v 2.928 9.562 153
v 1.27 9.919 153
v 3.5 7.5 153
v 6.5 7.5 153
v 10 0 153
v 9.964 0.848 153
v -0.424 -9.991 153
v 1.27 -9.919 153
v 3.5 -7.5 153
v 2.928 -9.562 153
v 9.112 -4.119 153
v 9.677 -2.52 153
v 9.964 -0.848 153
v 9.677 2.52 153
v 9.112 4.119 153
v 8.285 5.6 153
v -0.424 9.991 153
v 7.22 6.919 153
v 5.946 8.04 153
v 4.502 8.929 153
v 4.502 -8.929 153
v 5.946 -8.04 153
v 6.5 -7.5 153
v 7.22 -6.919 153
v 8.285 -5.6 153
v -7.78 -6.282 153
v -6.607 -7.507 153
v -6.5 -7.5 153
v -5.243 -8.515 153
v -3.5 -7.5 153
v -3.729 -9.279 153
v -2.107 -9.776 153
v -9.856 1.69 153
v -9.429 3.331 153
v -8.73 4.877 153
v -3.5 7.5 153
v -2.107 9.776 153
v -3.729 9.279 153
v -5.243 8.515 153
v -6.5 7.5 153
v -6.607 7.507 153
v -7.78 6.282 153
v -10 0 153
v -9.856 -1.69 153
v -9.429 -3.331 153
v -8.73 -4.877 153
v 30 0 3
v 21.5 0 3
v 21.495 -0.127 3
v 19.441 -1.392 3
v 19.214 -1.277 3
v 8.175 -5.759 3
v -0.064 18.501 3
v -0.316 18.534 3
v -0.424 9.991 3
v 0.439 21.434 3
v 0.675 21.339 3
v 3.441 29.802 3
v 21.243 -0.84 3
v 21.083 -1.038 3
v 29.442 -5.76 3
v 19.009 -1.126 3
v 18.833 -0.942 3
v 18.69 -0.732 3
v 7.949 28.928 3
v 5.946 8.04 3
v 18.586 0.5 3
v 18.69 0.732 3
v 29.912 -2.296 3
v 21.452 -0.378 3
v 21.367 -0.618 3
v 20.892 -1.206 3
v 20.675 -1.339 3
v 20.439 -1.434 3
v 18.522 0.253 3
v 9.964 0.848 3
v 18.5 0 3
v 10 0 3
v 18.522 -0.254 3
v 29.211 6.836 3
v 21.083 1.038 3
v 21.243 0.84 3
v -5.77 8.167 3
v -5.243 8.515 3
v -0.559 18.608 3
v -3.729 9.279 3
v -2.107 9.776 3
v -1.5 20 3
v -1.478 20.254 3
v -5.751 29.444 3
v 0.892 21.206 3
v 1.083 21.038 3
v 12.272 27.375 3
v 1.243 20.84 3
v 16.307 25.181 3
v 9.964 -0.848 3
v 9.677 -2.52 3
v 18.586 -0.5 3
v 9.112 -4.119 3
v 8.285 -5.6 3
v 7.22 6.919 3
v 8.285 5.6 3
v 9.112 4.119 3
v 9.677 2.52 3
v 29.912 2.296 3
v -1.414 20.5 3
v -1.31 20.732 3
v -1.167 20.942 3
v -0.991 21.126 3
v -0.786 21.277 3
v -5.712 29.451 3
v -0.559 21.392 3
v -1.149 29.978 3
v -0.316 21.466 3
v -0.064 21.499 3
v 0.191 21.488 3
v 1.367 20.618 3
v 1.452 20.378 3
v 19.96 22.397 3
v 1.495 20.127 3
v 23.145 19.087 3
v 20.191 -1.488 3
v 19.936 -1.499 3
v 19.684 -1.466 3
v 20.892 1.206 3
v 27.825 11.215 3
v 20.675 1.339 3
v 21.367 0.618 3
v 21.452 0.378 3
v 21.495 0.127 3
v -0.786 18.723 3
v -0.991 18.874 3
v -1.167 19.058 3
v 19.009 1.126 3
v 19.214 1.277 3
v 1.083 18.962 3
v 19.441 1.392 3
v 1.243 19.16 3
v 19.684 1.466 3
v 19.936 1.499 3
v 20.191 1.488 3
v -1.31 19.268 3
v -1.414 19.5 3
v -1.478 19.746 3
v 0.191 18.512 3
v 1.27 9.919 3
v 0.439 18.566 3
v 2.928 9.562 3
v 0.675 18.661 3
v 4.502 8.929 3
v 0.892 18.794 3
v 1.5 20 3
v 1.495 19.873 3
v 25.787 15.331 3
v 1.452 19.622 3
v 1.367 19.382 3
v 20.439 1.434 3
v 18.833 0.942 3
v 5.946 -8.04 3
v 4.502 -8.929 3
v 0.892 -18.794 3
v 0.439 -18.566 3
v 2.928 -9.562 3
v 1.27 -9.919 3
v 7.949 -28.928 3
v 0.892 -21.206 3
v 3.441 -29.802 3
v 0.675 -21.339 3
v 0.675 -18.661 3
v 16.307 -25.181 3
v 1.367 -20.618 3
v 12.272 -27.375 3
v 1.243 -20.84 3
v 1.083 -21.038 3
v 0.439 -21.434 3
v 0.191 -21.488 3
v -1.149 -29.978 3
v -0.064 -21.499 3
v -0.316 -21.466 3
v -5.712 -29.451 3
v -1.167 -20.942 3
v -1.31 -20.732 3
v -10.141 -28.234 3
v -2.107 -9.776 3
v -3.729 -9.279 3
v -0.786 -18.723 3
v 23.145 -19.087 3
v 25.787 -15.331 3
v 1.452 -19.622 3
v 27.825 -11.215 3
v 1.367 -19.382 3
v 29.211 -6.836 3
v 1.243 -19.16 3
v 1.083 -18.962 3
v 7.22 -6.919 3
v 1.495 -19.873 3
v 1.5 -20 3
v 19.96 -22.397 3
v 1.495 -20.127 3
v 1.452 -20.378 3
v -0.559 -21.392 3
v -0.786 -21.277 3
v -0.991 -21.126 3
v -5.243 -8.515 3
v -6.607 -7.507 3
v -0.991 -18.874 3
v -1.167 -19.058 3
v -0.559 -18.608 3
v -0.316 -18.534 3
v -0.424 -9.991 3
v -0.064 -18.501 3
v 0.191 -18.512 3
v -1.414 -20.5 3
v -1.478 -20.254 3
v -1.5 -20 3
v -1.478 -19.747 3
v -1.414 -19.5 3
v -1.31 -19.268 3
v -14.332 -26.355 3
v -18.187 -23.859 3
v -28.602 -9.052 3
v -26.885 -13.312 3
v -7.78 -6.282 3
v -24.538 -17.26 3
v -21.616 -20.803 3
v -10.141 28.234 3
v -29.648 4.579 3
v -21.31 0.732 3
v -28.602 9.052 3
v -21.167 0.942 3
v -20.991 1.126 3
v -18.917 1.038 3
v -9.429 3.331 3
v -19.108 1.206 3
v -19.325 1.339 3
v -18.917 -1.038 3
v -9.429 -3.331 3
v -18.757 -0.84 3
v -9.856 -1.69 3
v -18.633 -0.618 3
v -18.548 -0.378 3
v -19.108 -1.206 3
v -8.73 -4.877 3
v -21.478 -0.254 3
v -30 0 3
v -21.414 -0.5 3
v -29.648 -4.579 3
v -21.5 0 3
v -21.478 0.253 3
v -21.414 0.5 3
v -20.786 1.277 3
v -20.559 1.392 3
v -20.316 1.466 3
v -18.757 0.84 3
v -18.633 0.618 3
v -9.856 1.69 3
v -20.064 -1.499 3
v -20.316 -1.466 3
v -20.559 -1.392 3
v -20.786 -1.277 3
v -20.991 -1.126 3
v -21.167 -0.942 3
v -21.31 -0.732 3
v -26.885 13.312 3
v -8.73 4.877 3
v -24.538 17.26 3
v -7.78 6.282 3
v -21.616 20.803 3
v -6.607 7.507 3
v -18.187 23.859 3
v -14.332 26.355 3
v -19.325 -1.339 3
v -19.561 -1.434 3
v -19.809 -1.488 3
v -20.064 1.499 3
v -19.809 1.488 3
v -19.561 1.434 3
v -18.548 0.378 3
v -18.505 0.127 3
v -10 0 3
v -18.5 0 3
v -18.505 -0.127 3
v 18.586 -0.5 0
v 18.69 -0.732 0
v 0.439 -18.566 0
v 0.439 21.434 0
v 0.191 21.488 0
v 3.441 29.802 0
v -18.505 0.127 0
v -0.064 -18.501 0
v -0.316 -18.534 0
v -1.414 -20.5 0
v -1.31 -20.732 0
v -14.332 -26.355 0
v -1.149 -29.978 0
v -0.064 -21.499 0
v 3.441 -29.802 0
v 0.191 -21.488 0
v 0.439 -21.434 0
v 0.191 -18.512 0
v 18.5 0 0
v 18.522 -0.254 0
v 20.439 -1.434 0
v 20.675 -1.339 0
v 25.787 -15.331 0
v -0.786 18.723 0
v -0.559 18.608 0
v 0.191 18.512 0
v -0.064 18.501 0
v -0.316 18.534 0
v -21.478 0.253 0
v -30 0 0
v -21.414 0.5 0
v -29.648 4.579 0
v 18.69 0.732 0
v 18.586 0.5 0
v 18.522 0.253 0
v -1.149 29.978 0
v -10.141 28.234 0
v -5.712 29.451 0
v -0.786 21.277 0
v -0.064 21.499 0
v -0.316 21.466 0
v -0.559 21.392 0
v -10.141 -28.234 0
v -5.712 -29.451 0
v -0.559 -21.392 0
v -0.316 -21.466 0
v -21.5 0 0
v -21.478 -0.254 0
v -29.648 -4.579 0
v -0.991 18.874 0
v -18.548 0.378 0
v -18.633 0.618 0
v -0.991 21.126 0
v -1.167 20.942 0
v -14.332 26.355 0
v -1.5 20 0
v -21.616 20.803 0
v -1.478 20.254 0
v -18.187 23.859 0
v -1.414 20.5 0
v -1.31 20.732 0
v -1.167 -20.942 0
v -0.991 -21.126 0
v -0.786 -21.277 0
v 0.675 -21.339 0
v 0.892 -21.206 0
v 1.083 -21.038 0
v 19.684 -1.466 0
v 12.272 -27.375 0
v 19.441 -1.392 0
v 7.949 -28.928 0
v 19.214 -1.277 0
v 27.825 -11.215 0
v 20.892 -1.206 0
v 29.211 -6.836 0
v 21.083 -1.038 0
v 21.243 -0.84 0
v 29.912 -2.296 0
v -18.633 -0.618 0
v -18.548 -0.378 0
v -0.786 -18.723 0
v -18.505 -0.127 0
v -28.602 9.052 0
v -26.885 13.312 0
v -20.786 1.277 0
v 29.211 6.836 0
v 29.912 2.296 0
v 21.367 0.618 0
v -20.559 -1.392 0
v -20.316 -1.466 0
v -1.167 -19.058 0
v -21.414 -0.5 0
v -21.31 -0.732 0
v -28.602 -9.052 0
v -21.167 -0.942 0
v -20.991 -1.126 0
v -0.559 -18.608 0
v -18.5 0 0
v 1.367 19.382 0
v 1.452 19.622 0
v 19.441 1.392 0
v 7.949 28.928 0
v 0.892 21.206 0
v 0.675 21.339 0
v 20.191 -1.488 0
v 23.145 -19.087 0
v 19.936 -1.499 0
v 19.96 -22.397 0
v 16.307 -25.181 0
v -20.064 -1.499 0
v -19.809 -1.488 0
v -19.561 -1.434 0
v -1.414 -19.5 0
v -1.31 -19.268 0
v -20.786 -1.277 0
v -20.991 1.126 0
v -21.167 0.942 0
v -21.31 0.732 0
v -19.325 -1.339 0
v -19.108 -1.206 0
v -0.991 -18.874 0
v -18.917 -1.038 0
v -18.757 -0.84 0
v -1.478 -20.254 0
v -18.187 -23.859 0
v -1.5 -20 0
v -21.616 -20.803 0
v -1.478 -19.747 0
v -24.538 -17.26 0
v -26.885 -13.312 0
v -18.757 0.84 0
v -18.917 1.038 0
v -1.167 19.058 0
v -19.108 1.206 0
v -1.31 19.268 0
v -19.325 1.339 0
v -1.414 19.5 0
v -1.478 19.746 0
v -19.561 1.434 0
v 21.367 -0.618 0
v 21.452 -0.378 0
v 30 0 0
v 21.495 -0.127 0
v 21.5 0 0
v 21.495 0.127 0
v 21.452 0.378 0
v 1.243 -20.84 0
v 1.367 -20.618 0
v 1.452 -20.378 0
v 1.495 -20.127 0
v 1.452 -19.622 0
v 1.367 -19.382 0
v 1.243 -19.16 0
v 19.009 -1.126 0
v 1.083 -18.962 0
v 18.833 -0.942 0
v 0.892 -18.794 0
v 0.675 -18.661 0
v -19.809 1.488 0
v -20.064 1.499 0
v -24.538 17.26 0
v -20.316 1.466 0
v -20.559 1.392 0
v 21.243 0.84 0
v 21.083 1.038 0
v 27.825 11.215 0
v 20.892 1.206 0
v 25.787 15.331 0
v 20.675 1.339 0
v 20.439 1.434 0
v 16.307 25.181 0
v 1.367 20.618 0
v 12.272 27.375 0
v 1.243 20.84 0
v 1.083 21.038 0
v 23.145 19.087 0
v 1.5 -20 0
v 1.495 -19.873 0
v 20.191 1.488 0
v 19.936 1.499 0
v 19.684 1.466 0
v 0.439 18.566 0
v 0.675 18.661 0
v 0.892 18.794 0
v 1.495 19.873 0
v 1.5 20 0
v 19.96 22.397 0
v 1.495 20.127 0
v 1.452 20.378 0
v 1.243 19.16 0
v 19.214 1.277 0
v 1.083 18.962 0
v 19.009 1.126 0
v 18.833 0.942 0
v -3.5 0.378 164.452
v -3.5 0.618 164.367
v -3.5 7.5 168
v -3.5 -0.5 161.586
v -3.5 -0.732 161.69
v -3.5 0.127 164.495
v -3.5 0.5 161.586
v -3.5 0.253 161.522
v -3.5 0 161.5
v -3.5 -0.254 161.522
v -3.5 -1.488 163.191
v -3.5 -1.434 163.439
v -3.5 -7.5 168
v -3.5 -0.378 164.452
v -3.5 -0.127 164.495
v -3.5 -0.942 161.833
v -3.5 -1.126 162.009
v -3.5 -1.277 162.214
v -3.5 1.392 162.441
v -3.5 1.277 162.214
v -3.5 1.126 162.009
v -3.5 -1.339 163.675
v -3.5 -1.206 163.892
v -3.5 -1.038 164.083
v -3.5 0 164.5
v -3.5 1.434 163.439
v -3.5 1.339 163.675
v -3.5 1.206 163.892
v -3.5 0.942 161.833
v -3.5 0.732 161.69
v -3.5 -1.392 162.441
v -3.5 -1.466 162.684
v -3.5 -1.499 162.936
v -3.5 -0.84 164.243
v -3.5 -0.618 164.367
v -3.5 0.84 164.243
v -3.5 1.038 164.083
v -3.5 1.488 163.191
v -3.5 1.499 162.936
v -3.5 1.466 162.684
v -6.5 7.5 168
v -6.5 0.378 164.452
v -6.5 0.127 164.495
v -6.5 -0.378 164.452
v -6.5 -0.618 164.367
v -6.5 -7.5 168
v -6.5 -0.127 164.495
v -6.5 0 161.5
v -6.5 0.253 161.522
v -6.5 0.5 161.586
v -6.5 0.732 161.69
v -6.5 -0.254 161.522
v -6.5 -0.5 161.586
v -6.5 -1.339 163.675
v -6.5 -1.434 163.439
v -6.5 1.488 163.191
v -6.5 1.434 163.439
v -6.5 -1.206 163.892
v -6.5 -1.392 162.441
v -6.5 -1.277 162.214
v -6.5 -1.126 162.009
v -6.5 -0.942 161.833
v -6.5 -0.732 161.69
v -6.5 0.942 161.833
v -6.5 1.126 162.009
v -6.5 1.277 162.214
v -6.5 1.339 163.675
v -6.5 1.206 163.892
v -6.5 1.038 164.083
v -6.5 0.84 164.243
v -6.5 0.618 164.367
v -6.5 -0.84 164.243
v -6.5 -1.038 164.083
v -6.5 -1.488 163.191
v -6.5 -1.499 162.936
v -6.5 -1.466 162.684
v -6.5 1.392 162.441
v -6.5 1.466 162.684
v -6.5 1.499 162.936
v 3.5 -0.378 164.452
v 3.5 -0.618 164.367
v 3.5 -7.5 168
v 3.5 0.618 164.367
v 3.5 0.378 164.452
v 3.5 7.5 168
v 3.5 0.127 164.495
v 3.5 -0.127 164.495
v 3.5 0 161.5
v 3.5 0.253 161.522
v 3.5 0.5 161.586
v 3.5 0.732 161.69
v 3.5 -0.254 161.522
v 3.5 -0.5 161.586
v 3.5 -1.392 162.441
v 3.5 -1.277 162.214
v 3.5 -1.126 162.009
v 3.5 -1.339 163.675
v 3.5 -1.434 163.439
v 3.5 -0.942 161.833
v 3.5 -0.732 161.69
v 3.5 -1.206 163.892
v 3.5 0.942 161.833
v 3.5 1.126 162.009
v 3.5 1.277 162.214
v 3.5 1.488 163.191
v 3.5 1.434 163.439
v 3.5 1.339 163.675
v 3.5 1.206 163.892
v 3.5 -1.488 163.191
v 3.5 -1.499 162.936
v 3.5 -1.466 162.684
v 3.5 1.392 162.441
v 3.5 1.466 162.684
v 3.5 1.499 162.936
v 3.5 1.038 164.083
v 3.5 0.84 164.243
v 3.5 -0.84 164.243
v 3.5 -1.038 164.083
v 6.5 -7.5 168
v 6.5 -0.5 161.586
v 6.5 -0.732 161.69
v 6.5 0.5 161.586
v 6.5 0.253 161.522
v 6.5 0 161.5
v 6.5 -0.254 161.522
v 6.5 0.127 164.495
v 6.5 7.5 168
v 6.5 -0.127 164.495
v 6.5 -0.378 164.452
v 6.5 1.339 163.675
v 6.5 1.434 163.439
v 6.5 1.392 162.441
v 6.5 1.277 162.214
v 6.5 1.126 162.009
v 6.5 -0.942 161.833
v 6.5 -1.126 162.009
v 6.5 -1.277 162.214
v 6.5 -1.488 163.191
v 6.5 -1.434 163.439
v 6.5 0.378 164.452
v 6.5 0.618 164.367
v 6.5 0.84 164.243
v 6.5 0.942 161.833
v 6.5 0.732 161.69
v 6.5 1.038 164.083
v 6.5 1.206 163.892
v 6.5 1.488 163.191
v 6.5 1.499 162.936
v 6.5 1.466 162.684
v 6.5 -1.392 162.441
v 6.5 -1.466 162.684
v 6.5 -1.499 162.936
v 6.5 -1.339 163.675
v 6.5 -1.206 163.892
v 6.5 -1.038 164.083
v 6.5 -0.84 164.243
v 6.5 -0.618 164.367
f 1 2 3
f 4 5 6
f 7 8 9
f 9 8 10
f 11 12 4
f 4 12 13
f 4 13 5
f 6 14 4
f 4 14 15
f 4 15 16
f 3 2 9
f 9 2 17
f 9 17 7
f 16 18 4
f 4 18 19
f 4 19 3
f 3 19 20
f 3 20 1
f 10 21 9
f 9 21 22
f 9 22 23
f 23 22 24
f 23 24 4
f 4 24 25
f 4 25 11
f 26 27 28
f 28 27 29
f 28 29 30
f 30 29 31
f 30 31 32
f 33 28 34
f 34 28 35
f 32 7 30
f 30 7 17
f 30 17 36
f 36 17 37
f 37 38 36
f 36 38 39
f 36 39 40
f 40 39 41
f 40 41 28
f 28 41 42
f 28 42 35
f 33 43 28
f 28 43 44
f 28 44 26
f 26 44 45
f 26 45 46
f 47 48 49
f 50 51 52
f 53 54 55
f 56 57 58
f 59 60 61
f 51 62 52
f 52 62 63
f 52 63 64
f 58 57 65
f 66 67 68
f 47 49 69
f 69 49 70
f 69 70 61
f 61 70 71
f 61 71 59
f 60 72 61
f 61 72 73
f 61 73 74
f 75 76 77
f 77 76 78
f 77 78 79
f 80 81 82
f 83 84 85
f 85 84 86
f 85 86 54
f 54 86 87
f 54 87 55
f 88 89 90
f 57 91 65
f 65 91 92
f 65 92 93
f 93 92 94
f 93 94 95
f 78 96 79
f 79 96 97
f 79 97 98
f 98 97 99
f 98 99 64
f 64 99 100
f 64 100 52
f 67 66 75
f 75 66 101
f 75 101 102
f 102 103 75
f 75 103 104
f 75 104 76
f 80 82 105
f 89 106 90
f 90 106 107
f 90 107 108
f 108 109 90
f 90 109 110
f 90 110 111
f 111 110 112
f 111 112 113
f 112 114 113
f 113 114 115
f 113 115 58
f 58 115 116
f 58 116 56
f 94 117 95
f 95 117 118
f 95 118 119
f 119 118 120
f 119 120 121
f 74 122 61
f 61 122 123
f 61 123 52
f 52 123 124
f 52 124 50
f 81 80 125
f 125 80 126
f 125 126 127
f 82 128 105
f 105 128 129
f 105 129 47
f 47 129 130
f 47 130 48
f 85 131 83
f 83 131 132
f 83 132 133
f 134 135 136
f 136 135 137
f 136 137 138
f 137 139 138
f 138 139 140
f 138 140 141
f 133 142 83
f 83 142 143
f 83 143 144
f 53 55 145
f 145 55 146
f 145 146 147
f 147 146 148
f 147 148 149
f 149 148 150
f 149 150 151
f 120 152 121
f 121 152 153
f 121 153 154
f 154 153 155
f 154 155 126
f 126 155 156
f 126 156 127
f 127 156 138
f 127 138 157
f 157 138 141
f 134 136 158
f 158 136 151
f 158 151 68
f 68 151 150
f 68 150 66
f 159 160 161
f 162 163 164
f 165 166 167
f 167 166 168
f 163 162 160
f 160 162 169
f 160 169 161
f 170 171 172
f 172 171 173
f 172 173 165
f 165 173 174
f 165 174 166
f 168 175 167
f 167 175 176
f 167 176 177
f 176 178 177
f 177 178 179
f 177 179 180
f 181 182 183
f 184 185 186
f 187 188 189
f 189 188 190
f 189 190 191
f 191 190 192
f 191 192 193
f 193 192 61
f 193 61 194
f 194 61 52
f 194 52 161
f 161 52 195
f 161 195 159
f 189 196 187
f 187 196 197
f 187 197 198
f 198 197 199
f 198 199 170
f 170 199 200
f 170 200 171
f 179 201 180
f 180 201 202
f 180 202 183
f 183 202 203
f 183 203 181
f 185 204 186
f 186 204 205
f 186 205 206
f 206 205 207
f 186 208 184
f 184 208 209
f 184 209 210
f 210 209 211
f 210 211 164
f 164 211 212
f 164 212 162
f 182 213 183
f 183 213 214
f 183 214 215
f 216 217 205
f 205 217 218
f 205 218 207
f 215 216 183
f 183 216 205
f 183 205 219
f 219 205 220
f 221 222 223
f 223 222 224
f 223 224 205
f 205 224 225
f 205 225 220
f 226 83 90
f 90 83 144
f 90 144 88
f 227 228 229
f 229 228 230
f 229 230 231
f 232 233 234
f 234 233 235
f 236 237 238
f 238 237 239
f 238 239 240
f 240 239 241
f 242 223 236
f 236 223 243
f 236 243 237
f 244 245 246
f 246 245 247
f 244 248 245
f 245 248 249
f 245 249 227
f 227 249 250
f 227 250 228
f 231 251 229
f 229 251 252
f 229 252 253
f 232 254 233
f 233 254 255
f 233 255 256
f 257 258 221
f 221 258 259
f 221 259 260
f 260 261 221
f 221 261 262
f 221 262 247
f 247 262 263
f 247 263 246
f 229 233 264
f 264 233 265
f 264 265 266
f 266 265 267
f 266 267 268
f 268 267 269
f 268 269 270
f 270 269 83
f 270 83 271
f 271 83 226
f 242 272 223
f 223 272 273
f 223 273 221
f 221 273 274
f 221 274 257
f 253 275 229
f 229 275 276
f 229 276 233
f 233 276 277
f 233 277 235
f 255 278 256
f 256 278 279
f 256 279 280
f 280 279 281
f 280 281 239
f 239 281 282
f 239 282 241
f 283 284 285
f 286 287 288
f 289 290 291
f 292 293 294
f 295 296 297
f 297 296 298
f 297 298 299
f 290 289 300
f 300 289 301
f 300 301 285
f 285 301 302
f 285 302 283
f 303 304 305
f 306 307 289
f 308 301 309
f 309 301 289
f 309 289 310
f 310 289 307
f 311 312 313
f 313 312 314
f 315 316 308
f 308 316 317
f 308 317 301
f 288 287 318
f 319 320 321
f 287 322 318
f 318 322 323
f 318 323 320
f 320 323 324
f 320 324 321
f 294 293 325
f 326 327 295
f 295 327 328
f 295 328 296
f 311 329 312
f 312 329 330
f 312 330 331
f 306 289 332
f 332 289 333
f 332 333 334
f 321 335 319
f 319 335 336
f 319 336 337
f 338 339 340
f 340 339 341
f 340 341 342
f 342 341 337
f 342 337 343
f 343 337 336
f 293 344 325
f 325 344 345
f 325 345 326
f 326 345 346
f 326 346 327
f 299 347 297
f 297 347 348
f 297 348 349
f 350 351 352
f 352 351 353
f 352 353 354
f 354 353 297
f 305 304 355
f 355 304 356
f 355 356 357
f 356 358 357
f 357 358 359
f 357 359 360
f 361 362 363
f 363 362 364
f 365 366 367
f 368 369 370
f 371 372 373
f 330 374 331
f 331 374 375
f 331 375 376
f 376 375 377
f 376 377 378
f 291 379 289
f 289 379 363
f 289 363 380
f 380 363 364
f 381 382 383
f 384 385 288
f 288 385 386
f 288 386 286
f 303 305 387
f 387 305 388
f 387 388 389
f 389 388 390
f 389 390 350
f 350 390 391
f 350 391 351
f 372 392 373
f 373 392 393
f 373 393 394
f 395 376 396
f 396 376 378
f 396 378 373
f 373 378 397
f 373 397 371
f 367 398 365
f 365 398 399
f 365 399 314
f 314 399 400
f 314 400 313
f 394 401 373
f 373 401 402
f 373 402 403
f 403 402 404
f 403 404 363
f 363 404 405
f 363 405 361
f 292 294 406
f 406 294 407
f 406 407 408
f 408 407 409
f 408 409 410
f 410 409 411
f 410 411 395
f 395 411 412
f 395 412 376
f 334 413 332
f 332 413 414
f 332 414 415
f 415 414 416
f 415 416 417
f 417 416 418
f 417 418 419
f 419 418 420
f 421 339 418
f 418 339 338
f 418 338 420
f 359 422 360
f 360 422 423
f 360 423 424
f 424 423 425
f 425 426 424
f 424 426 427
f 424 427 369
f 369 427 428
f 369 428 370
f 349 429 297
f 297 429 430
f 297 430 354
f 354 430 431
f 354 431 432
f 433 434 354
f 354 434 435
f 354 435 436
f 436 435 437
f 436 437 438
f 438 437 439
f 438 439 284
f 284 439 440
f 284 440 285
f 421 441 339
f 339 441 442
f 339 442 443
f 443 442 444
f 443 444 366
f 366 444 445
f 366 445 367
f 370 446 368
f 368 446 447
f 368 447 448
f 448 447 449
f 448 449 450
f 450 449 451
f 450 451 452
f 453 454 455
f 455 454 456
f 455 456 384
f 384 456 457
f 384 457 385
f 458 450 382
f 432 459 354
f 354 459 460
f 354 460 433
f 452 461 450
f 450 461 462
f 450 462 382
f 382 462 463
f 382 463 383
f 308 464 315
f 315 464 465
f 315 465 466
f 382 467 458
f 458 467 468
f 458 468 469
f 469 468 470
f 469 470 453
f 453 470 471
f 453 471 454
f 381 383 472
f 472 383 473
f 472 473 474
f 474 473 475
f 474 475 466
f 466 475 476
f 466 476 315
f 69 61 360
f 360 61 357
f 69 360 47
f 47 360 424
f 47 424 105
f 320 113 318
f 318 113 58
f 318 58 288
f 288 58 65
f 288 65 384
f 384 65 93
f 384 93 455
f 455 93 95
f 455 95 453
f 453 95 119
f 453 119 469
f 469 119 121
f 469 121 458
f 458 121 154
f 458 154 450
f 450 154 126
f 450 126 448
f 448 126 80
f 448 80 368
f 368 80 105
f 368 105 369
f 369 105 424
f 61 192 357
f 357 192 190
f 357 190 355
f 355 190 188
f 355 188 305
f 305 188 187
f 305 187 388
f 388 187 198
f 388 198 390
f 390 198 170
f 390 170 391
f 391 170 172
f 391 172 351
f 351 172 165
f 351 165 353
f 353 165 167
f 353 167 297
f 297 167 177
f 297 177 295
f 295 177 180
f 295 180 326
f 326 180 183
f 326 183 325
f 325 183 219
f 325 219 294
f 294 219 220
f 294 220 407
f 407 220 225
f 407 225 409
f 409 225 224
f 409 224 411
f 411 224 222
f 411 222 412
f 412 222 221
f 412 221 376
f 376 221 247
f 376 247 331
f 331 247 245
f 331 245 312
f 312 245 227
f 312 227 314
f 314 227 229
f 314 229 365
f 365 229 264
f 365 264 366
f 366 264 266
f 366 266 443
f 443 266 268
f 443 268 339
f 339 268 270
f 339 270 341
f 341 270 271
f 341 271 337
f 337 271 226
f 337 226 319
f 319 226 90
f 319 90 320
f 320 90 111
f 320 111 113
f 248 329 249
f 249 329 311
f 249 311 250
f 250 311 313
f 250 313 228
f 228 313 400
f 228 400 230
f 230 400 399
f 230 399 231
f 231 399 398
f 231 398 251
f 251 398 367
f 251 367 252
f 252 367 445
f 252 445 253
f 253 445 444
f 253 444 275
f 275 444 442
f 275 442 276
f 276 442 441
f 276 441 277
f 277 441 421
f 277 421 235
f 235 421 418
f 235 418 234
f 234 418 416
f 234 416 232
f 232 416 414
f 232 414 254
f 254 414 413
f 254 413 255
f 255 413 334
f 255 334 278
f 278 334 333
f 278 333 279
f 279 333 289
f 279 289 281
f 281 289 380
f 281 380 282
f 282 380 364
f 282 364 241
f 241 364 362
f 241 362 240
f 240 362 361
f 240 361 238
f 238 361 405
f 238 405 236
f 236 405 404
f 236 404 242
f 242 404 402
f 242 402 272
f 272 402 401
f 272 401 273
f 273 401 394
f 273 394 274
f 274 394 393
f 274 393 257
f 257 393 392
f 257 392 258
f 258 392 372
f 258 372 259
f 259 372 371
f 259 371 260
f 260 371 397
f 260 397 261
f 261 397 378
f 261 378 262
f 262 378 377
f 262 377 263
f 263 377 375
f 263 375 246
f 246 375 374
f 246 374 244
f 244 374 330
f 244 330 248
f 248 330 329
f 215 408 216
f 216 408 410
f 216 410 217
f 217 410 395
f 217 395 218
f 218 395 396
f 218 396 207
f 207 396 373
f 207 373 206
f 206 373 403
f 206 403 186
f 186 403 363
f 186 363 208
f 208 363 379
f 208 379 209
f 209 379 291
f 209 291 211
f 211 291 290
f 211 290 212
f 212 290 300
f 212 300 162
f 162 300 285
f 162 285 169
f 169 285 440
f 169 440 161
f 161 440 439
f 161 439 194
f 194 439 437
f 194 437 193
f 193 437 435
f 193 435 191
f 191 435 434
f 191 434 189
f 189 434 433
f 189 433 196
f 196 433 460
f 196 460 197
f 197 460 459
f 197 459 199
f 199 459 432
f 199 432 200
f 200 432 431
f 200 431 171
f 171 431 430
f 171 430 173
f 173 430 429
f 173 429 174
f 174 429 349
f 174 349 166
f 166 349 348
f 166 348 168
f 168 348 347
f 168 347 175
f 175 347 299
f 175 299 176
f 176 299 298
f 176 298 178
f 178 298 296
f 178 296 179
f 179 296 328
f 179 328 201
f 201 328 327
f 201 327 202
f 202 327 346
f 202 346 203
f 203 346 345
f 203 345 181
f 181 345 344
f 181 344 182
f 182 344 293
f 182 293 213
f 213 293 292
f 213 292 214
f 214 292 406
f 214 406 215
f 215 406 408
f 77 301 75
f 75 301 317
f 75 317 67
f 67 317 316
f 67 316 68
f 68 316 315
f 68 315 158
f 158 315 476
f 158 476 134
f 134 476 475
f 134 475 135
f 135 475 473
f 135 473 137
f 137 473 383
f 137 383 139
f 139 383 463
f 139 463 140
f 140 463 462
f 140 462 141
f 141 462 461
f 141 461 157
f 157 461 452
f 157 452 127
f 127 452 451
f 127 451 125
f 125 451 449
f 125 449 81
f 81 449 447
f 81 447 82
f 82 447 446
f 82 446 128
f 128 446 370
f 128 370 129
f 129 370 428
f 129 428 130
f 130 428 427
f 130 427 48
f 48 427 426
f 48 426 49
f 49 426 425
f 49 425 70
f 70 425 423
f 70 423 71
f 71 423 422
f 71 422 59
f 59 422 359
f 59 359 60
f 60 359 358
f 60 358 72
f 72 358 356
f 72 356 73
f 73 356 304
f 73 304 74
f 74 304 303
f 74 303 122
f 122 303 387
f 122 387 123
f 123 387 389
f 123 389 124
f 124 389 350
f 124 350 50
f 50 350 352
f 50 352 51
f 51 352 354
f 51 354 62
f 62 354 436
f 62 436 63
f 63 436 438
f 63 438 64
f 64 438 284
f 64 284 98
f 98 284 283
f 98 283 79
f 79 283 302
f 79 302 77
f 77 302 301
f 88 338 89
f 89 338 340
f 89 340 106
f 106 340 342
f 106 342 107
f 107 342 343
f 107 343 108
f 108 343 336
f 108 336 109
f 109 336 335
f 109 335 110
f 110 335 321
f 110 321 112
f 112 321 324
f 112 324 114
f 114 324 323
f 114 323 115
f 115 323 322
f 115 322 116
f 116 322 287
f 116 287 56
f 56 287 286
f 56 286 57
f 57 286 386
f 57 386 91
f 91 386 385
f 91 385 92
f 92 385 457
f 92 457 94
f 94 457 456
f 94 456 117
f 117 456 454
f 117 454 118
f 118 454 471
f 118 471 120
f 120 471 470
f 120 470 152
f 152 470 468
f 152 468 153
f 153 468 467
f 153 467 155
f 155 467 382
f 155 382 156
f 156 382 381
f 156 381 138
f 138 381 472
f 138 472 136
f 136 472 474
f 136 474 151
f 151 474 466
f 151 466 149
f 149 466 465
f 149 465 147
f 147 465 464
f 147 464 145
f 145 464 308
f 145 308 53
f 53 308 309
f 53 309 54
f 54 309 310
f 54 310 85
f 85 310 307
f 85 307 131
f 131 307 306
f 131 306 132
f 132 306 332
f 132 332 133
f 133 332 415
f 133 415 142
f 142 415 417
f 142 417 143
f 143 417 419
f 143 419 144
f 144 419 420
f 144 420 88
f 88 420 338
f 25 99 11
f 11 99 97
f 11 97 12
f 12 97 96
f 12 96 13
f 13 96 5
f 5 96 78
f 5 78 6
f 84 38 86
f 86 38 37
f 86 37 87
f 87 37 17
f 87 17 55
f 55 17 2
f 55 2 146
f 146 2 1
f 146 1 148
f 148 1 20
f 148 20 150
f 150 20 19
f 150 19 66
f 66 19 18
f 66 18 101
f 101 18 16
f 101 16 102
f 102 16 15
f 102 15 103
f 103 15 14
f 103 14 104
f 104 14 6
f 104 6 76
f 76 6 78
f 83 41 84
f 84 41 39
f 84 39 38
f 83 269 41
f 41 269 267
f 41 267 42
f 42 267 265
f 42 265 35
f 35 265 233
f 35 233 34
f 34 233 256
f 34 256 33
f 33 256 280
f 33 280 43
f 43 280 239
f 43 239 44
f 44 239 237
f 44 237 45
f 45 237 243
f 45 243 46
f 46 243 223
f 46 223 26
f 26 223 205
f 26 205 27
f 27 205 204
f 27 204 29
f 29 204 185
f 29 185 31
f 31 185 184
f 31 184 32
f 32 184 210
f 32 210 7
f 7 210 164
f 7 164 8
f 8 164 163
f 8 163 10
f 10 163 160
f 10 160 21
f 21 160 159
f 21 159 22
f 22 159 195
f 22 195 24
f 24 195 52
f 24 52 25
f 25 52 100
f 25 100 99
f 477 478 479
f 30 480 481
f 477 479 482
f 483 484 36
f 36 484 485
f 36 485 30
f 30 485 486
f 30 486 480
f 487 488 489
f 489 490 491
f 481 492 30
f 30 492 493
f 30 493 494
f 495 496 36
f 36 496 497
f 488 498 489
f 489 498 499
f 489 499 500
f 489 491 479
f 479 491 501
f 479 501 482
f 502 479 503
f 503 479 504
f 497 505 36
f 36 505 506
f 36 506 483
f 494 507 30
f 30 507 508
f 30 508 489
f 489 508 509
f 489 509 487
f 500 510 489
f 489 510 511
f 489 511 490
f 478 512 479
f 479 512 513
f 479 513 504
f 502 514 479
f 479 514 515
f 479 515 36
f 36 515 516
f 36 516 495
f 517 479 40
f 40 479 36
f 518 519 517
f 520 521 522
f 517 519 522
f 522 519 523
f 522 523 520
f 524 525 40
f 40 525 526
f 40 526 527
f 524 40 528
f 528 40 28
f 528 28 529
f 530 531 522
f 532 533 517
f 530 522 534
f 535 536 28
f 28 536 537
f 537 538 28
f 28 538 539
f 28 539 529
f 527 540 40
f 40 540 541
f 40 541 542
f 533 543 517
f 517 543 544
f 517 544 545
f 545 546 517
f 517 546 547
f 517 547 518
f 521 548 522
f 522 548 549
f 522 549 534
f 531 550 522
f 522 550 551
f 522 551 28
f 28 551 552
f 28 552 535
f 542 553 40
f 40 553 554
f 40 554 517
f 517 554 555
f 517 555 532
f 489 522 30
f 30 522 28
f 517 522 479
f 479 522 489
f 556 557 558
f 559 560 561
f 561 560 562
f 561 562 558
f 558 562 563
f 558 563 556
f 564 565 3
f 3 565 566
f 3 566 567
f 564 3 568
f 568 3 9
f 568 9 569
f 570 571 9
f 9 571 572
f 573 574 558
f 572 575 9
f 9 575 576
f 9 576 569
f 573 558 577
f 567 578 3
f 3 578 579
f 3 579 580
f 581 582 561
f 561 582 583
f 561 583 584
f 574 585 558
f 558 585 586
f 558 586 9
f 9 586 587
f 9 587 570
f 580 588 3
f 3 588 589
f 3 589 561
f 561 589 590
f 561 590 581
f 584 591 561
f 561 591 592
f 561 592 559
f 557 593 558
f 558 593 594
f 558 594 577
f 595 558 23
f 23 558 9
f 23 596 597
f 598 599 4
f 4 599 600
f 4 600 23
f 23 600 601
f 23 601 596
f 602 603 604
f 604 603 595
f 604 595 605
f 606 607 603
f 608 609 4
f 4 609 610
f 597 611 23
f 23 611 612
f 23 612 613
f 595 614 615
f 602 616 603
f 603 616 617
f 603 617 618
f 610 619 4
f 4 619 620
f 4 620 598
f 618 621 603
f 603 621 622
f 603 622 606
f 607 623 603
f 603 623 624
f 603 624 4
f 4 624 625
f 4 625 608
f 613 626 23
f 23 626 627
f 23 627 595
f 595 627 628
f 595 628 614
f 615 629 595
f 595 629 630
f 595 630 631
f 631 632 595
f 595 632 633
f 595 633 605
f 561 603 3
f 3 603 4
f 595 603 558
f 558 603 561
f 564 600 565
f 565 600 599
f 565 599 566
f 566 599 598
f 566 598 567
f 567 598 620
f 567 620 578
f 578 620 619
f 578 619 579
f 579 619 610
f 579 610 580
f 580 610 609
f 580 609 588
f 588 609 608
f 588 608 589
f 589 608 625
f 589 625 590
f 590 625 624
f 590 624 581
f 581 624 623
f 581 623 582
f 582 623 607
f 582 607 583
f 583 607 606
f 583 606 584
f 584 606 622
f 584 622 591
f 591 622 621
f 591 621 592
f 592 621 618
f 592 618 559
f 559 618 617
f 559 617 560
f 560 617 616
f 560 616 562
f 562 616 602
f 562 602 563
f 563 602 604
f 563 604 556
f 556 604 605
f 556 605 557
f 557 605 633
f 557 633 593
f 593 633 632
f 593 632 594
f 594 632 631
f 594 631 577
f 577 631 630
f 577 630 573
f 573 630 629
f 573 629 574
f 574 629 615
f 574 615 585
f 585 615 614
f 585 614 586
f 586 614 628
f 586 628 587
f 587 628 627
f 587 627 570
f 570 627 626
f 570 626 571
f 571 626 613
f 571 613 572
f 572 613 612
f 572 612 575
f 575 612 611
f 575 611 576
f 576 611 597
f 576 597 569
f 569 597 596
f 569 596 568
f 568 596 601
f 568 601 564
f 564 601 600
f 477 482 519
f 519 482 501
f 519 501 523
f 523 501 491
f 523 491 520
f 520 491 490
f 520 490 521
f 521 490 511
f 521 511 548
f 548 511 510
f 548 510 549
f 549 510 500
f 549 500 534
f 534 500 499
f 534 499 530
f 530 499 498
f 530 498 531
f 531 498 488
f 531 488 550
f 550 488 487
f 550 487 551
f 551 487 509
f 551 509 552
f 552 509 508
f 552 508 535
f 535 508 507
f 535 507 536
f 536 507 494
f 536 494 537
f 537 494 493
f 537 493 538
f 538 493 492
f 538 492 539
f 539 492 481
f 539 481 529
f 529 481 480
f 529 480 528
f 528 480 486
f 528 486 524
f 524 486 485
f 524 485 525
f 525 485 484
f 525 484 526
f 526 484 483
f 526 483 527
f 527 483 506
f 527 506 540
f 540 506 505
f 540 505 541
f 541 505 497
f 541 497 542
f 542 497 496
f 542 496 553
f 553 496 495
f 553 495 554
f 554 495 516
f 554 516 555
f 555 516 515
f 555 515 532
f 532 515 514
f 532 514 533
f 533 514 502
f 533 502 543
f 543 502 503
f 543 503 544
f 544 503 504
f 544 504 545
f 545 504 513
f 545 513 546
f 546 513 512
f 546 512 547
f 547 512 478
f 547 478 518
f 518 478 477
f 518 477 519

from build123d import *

# Parameters (mm, degrees)
SKETCH_1_R          = 30
SKETCH_1_R_2        = 1.5
EXTRUDE_1_DEPTH     = 3
SKETCH_3_R          = 10
EXTRUDE_3_DEPTH     = 150
SKETCH_4_W          = 3
SKETCH_4_H          = 15
EXTRUDE_4_DEPTH     = 15
SKETCH_5_R          = 1.5
CUT_EXTRUDE_1_DEPTH = 175.51719113


with BuildPart() as part:
    # Эскиз1 → Бобышка-Вытянуть1 (new body)
    with BuildSketch(Plane.XY):
        Circle(SKETCH_1_R)
        with Locations((-20, 0)):
            Circle(SKETCH_1_R_2, mode=Mode.SUBTRACT)
        with Locations((0, -20)):
            Circle(SKETCH_1_R_2, mode=Mode.SUBTRACT)
        with Locations((20, 0)):
            Circle(SKETCH_1_R_2, mode=Mode.SUBTRACT)
        with Locations((0, 20)):
            Circle(SKETCH_1_R_2, mode=Mode.SUBTRACT)
    extrude(amount=EXTRUDE_1_DEPTH)

    # Эскиз3 → Бобышка-Вытянуть3 (add)
    with BuildSketch(Plane.XY.offset(3)):
        Circle(SKETCH_3_R)
    extrude(amount=EXTRUDE_3_DEPTH)

    # Эскиз4 → Бобышка-Вытянуть4 (add)
    with BuildSketch(Plane.XY.offset(153)):
        with Locations((-5, 0)):
            Rectangle(SKETCH_4_W, SKETCH_4_H)
        with Locations((5, 0)):
            Rectangle(SKETCH_4_W, SKETCH_4_H)
    extrude(amount=EXTRUDE_4_DEPTH)

    # Эскиз5 → Вырез-Вытянуть1 (cut, through all)
    with BuildSketch(Plane(origin=(6.5, 0, 0), x_dir=(0, 0, -1), z_dir=(1, 0, 0))):
        with Locations((-163, 0)):
            Circle(SKETCH_5_R)
    extrude(amount=-CUT_EXTRUDE_1_DEPTH, mode=Mode.SUBTRACT)


solid = part.part
